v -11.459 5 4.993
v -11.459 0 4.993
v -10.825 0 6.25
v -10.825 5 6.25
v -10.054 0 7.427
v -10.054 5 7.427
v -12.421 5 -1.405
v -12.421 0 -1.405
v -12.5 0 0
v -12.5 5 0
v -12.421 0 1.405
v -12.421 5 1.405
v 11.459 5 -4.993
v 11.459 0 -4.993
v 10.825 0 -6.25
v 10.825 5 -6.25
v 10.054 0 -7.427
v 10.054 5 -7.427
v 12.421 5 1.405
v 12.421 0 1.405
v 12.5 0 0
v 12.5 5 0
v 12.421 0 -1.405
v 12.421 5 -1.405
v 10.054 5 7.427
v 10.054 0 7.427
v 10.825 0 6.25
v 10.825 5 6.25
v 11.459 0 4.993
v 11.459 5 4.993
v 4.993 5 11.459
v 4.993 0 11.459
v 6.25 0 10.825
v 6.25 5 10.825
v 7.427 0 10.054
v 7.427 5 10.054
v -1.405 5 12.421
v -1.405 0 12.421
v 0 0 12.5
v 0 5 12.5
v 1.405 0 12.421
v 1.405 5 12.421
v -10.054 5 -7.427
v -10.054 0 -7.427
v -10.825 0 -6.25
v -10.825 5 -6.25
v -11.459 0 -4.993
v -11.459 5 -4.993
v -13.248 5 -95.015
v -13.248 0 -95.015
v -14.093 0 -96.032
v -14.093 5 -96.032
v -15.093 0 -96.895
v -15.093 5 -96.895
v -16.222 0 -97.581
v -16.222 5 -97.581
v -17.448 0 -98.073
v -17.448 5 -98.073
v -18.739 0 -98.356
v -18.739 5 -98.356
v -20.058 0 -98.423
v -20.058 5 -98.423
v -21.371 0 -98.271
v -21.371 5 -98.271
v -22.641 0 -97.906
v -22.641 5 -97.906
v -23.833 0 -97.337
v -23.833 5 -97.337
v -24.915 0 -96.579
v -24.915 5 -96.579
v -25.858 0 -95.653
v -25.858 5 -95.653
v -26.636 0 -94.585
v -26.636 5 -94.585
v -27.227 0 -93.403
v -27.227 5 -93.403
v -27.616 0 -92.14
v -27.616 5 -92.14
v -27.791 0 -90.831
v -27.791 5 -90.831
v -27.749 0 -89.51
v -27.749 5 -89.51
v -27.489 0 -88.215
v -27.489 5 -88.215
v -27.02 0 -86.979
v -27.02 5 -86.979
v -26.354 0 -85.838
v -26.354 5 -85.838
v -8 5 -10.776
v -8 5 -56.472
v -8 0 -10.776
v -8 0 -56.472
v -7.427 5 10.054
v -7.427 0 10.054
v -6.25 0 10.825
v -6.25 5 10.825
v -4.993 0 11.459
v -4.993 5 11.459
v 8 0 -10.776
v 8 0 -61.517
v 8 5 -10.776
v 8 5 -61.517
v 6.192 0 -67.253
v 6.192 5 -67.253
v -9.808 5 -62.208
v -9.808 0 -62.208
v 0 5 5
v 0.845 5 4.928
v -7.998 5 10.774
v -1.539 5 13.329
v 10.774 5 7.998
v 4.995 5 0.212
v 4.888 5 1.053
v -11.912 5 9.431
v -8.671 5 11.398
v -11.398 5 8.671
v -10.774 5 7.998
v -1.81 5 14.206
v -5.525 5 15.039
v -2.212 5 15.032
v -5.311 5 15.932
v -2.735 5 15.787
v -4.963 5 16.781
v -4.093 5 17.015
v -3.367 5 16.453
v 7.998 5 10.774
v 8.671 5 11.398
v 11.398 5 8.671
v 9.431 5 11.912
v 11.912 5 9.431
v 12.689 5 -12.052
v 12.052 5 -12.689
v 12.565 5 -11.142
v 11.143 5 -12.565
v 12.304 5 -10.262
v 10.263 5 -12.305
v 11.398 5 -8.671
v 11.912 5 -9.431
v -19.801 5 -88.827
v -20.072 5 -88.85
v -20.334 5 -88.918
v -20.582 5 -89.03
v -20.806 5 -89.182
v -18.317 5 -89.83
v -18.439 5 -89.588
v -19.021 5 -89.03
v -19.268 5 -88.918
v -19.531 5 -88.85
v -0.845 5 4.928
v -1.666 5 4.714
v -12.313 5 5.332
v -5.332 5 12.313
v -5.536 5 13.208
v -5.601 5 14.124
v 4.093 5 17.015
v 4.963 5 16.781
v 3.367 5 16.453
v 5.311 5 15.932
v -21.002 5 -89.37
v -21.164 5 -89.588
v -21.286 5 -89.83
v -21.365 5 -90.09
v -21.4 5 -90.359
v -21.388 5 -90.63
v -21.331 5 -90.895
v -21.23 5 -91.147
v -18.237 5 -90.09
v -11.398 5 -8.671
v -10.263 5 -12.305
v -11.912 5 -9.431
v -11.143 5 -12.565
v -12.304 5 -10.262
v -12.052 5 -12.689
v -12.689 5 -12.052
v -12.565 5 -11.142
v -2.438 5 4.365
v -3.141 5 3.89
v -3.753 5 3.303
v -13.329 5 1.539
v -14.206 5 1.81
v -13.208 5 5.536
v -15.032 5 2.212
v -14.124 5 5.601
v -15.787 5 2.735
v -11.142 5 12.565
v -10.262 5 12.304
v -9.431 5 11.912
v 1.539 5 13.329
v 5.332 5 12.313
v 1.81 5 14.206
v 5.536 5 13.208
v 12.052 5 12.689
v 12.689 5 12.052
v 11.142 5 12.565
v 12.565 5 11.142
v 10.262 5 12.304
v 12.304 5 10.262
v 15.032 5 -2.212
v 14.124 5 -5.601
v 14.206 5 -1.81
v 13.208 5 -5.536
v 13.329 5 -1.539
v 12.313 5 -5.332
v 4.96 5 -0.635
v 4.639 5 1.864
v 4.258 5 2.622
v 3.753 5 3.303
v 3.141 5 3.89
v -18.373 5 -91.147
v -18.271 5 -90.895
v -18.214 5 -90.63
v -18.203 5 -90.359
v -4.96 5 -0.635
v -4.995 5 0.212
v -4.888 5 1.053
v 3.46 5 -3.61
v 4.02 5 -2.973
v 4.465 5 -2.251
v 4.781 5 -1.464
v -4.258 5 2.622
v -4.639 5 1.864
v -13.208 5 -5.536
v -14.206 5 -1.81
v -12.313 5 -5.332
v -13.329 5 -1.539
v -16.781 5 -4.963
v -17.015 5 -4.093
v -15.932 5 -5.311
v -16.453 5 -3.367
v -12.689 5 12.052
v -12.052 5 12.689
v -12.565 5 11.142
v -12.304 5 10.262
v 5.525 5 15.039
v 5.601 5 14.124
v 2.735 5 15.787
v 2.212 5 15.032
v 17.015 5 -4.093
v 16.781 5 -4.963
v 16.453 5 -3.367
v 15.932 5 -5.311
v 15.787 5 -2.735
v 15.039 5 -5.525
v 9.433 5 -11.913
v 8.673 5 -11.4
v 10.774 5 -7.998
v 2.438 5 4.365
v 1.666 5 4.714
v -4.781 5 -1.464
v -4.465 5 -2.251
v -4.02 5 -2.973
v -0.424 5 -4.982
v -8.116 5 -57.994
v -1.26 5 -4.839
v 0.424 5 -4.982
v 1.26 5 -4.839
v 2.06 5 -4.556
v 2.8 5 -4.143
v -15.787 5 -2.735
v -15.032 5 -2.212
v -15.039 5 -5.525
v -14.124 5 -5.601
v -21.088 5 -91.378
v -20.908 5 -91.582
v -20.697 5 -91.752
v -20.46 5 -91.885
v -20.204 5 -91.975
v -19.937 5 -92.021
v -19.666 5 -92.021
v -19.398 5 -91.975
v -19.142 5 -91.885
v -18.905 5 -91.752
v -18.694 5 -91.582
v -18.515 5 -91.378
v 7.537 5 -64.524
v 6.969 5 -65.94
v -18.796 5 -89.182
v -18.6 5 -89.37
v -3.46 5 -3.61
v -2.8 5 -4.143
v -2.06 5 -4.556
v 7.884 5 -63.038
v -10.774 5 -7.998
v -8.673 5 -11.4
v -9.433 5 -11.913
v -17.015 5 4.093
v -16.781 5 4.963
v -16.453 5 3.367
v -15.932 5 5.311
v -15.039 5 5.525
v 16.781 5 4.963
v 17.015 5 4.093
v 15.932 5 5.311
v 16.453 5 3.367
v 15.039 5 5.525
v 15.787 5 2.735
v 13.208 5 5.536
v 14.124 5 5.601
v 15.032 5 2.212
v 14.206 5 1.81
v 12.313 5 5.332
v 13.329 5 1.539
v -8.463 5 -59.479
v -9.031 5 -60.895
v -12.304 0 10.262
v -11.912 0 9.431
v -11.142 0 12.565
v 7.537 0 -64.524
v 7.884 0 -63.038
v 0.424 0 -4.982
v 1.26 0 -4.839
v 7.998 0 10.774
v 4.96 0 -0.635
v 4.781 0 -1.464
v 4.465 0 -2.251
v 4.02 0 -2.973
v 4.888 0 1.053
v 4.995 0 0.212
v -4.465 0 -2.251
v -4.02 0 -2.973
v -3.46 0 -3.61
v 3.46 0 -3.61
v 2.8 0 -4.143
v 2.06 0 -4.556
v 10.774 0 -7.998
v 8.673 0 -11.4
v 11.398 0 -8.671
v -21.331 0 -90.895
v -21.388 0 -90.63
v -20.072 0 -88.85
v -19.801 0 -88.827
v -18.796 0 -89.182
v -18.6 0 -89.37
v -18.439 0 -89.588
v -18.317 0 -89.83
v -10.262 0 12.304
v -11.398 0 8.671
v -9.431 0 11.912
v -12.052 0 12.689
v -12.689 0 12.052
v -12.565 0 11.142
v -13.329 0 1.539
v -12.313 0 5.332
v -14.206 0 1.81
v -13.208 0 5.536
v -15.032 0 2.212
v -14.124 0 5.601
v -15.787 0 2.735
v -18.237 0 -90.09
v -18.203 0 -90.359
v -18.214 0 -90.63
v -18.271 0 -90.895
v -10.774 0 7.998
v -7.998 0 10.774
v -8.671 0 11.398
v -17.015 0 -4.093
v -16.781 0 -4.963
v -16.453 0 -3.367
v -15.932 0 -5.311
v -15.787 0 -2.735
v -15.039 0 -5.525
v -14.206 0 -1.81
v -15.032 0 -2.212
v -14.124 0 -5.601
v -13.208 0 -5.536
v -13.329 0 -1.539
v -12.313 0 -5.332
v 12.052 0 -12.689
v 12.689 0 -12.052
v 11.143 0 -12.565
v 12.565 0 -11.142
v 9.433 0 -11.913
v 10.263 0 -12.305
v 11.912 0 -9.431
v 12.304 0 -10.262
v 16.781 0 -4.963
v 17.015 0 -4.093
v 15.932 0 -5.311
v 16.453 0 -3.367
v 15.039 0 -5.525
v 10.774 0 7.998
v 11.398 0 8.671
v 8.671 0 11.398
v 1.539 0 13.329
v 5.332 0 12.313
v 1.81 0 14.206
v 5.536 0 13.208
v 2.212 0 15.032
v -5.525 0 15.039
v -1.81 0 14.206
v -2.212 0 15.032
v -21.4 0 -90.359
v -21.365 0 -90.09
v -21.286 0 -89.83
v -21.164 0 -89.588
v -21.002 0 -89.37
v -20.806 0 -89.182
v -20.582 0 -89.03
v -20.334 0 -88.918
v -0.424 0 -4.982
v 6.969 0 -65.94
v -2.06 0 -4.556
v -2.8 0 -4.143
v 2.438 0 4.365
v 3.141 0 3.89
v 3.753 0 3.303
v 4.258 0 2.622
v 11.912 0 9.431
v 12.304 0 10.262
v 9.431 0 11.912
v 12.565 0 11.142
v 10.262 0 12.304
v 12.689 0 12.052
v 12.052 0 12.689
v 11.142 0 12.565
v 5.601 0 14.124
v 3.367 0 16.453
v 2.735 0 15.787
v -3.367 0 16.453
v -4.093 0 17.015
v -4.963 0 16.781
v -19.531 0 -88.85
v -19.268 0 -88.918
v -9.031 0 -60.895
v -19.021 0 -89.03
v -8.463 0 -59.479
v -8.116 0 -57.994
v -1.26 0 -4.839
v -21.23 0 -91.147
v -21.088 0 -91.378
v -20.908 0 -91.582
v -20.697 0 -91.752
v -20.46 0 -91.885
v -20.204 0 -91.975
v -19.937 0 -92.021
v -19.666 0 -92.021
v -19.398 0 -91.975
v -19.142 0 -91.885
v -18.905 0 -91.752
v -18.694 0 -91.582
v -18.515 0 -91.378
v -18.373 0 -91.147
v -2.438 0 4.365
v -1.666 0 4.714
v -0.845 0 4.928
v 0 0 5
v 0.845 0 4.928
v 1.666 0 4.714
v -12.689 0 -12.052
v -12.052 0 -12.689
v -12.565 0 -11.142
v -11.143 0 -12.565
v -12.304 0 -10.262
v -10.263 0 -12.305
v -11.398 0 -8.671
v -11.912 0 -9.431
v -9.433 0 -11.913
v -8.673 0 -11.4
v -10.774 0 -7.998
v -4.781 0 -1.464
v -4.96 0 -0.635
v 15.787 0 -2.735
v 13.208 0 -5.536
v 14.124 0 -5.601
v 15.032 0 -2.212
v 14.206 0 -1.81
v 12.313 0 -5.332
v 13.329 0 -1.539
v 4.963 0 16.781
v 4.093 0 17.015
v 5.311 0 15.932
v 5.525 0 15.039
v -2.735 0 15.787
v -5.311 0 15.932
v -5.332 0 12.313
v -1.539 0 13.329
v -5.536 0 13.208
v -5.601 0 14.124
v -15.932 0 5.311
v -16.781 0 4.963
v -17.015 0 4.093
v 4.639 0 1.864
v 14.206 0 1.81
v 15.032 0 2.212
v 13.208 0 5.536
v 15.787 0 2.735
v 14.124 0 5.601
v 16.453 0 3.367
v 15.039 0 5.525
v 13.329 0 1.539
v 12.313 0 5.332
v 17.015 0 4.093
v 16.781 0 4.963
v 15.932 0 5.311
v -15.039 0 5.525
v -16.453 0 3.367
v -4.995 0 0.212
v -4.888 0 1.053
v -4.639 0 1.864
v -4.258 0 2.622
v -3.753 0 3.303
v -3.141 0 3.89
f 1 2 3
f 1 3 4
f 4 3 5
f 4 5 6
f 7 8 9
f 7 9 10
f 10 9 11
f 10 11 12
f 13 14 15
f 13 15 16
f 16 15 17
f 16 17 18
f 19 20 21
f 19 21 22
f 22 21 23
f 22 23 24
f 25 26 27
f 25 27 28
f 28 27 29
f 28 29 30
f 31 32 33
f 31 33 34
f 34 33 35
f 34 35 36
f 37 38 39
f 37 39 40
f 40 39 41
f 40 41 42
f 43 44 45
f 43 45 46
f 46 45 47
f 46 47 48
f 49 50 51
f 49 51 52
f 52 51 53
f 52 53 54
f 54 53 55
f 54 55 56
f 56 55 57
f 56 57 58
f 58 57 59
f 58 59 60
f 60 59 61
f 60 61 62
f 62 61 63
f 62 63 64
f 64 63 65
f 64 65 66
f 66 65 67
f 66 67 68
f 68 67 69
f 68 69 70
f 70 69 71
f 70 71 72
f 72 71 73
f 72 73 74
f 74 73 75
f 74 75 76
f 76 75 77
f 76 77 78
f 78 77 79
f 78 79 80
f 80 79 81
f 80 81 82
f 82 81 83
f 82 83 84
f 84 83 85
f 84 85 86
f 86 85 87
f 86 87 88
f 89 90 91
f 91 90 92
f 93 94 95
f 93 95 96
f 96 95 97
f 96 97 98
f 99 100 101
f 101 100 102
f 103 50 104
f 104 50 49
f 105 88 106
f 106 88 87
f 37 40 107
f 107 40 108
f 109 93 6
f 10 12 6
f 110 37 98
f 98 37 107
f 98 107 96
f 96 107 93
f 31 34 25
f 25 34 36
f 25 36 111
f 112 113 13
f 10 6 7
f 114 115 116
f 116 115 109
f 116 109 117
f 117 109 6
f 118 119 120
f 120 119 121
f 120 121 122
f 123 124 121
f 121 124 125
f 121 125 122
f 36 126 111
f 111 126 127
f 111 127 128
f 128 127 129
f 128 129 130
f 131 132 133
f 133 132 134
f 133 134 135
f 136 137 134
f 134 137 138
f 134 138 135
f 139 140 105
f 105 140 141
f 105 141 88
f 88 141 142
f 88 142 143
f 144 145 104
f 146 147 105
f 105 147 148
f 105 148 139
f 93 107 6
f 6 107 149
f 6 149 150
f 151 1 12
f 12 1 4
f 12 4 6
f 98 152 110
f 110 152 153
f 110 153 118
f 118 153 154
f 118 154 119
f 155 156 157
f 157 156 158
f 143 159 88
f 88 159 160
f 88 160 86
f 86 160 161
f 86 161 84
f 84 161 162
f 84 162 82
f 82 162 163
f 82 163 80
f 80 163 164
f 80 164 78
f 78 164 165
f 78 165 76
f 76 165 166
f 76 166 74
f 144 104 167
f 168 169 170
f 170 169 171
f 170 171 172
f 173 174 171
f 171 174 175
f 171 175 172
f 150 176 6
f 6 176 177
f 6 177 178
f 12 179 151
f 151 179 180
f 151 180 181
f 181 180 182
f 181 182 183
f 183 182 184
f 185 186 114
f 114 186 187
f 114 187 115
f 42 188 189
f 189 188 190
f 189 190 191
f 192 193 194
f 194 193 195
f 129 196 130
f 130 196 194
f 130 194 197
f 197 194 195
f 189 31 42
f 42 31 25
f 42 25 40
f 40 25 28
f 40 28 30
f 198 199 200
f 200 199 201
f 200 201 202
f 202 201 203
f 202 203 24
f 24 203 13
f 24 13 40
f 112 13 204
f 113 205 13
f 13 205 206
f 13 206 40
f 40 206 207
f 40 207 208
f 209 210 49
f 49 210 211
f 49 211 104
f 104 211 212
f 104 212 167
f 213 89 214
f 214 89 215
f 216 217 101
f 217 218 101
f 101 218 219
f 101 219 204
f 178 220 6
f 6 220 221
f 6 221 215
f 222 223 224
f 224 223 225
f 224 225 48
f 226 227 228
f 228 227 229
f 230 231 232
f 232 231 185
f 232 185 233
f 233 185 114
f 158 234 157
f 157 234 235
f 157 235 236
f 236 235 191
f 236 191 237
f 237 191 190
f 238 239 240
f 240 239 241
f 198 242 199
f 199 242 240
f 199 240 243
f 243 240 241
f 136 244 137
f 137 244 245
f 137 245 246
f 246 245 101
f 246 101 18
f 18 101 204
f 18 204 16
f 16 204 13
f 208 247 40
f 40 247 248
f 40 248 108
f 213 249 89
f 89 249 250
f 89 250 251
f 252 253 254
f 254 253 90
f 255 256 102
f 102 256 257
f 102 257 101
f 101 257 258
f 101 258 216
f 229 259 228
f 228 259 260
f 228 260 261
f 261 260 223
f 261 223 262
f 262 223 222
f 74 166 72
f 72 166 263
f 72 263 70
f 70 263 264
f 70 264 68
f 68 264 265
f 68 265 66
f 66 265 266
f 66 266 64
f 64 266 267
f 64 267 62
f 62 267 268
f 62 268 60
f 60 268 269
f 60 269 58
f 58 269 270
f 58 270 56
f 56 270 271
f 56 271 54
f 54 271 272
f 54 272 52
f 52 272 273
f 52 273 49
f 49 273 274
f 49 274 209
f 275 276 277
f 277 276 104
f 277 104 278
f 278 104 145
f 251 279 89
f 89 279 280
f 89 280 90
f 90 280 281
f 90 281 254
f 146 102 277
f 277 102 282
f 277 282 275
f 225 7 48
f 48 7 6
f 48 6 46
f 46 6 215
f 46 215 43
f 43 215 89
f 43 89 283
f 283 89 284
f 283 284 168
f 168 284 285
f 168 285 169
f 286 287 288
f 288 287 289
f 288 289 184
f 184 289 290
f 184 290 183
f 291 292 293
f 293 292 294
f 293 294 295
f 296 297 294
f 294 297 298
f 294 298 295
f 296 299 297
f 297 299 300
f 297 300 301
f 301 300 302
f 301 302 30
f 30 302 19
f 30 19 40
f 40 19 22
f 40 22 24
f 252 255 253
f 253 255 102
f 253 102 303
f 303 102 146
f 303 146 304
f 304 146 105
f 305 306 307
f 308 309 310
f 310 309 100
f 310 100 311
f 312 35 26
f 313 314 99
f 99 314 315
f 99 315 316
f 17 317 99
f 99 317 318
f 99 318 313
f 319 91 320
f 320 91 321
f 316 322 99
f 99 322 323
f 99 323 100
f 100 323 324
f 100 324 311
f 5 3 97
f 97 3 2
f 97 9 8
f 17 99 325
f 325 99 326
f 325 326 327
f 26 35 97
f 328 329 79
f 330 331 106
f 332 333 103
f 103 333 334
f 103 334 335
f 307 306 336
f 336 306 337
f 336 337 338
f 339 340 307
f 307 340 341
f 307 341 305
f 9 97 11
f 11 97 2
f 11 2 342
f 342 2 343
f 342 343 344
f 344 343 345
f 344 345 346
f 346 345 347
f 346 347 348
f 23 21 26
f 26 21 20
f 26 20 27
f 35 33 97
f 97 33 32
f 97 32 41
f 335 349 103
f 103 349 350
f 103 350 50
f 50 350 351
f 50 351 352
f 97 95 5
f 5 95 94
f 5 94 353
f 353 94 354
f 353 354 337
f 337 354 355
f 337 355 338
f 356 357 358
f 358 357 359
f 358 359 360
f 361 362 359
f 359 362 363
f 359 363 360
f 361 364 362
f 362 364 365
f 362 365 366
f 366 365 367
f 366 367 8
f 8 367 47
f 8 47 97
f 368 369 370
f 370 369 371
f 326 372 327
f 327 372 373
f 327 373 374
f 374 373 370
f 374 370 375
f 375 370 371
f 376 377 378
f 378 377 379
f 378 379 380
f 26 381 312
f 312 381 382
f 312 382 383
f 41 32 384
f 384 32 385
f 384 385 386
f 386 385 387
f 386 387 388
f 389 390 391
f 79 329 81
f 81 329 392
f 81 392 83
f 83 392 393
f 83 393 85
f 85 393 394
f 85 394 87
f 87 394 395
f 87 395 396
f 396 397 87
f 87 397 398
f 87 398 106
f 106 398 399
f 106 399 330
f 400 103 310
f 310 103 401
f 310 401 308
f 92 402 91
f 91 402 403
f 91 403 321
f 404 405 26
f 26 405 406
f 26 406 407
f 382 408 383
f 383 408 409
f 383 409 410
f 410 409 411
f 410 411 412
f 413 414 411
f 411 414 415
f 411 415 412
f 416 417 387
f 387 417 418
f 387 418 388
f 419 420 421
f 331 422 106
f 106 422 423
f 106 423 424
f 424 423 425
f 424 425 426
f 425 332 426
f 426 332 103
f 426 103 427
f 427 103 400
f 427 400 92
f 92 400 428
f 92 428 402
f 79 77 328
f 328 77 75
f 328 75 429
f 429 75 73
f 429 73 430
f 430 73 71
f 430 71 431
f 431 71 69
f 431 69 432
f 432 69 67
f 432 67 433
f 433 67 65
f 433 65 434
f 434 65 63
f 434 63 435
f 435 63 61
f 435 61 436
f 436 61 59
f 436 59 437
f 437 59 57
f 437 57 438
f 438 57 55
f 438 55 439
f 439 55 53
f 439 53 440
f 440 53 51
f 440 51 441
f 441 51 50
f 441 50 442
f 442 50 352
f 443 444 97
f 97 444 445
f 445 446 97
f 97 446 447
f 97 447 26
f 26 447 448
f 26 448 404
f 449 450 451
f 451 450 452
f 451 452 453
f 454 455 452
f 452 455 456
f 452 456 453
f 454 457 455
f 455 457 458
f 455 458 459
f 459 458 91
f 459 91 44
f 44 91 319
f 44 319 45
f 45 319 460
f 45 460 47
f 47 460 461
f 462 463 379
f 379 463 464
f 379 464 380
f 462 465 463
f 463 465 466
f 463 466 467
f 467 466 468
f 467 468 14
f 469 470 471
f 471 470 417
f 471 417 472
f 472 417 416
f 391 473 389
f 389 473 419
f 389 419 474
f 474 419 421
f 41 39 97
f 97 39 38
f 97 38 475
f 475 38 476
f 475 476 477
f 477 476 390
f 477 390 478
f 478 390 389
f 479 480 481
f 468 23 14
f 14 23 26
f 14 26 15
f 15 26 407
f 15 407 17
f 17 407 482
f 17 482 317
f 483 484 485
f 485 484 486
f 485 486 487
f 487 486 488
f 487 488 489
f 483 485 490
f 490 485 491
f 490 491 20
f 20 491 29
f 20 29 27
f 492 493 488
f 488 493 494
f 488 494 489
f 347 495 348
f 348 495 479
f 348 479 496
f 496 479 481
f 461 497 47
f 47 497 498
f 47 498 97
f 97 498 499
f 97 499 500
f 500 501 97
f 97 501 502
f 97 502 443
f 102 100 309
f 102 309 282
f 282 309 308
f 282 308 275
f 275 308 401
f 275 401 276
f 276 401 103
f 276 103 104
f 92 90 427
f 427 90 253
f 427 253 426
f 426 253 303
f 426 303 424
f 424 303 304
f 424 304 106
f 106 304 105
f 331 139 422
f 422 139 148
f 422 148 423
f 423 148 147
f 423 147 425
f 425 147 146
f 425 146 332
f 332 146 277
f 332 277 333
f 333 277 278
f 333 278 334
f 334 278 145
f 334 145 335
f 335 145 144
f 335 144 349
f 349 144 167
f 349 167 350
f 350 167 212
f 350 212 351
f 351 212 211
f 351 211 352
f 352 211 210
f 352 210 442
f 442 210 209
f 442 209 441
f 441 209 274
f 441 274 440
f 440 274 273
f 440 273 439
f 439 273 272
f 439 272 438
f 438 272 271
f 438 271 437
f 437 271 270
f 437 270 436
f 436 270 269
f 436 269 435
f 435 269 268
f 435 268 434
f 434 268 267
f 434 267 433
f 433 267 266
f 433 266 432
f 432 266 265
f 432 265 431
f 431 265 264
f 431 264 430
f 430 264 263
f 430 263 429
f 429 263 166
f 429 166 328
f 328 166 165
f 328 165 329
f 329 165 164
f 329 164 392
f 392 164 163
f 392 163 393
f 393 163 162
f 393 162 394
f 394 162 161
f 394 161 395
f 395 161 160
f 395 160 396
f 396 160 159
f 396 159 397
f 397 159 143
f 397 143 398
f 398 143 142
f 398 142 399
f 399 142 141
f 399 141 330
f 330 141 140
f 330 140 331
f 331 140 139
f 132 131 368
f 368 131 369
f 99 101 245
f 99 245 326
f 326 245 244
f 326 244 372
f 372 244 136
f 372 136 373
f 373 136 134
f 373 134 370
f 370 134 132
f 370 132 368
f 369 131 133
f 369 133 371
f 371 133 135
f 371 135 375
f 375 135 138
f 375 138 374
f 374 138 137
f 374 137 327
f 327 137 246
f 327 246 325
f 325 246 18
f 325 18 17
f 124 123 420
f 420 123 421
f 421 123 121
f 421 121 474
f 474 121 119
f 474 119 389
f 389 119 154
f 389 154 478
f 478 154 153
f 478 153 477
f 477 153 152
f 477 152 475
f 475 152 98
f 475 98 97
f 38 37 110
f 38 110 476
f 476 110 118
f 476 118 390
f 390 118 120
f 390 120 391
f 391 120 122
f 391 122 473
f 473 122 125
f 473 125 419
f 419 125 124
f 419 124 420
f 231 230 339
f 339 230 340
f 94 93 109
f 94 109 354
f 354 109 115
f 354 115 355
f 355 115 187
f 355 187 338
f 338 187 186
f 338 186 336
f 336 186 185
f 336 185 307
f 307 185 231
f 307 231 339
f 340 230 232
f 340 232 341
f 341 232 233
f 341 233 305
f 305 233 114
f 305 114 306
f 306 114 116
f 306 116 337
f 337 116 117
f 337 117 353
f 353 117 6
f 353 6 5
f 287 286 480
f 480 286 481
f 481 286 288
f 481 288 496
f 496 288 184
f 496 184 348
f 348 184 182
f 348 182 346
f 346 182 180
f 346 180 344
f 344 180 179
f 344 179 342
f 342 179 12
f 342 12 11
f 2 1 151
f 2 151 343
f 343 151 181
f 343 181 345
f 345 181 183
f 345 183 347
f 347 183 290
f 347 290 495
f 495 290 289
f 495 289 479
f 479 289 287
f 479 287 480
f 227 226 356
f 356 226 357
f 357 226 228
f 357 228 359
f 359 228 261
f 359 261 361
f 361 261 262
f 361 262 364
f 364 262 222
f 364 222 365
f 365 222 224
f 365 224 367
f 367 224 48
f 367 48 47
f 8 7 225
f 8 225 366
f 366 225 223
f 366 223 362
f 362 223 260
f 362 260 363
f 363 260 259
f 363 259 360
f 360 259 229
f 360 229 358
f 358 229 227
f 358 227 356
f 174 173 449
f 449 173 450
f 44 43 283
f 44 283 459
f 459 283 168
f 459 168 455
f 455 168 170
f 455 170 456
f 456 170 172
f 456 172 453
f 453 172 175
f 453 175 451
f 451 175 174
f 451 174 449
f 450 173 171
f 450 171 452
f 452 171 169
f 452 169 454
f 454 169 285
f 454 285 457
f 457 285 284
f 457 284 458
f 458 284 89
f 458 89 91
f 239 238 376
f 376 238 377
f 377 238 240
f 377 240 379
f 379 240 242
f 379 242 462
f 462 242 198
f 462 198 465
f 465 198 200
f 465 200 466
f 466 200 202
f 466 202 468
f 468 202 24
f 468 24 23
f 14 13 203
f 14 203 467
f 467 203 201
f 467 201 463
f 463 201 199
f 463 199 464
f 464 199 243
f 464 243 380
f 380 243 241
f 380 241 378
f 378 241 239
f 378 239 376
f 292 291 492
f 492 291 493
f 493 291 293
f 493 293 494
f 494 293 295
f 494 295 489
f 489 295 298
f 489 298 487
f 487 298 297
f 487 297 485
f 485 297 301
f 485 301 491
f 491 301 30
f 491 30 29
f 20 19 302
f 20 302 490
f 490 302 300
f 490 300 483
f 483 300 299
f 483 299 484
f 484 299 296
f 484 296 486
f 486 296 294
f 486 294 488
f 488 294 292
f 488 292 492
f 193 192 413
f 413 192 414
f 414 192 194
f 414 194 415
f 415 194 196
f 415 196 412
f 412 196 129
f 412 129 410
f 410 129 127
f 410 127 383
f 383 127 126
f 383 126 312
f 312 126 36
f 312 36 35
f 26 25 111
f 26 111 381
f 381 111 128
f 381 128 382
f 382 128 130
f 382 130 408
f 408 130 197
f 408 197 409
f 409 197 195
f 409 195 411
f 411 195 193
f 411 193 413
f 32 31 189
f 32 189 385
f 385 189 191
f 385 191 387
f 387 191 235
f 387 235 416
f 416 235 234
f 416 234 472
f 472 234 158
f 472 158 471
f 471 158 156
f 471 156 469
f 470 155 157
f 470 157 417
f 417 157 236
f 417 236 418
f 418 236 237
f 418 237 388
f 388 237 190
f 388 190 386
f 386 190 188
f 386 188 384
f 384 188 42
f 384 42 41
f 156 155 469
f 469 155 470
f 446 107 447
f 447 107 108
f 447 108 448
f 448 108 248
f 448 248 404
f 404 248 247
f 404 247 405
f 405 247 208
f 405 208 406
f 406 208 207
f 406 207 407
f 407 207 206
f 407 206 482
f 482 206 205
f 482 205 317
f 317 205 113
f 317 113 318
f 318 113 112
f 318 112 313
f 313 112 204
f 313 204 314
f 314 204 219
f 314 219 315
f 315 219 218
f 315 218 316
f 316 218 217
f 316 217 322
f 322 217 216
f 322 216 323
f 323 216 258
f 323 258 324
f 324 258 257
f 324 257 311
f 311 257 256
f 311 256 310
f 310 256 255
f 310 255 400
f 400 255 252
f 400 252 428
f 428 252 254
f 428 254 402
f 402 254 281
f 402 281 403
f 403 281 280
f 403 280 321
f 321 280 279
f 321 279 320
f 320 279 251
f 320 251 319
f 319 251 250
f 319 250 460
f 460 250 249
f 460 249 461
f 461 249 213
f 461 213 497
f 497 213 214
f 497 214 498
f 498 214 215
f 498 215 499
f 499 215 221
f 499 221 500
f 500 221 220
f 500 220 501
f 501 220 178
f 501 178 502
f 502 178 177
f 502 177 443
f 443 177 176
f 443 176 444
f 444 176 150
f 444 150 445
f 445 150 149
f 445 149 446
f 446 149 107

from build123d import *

# Parameters (mm, degrees)
BOSS_EXTRUDE1_DEPTH = 5
FILLET1_RADIUS      = 8
FILLET1_LENGTH      = 5
FILLET2_R           = 10
SKETCH2_R           = 1.6
CUT_EXTRUDE2_DEPTH  = 103.399978443
BOSS_EXTRUDE3_DEPTH = 5
SKETCH6_R           = 5
CUT_EXTRUDE3_DEPTH  = 103.399978443


with BuildPart() as part:
    # Sketch1 → Boss-Extrude1 (new body)
    with BuildSketch(Plane(origin=(0, 0, 0), x_dir=(1, 0, 0), z_dir=(0, 1, 0))):
        with BuildLine():
            Line((8, 9.604686356), (8, 64.67016599))
            Line((8, 64.67016599), (-17.836624745, 101.568690121))
            Line((-17.836624745, 101.568690121), (-30.943057454, 92.391467139))
            Line((-30.943057454, 92.391467139), (-8, 59.625385368))
            Line((-8, 59.625385368), (-8, 9.604686356))
            ThreePointArc((-8, 9.604686356), (0, -12.5), (8, 9.604686356))
        make_face()
    extrude(amount=BOSS_EXTRUDE1_DEPTH)

    # Fillet1: full round fillet: the end face becomes a half cylinder, R = half its width
    fillet1_face = Plane((-24.3898411, 2.5, -96.98007863), x_dir=(0, 1, 0), z_dir=(-0.573576436351, 0, -0.819152044289))  # on the end face: x along it, z out of the body
    fillet1_slab = fillet1_face.offset(-FILLET1_RADIUS / 2) * Box(FILLET1_LENGTH, 2 * FILLET1_RADIUS, FILLET1_RADIUS, mode=Mode.PRIVATE)  # the body's end, R deep
    fillet1_round = Plane((-19.801229609, 2.5, -90.426862276), x_dir=(-0.573576436351, 0, -0.819152044289), z_dir=(0, 1, 0)) * Cylinder(FILLET1_RADIUS, FILLET1_LENGTH, mode=Mode.PRIVATE)  # its axis R under the face
    add(fillet1_slab - fillet1_round, mode=Mode.SUBTRACT)

    # Fillet2
    fillet2_edges = [part.edges().sort_by_distance(p)[0] for p in [
        (-8, 2.5, -59.625385368),
        (8, 2.5, -64.67016599),
    ]]
    fillet(fillet2_edges, radius=FILLET2_R)

    # Sketch2 → Cut-Extrude2 (cut, through all)
    with BuildSketch(Plane(origin=(0, 5, 0), x_dir=(1, 0, 0), z_dir=(0, 1, 0))):
        with Locations(Location((-19.801229609, 90.426862276, 0), (0, 0, 270))):
            Circle(SKETCH2_R)
    extrude(amount=-CUT_EXTRUDE2_DEPTH, mode=Mode.SUBTRACT)

    # Sketch5 → Boss-Extrude3 (add)
    with BuildSketch(Plane(origin=(0, 5, 0), x_dir=(1, 0, 0), z_dir=(0, 1, 0))):
        with BuildLine():
            ThreePointArc((-12.051706508, -12.688828561), (-9.162245044, -11.749370601), (-7.103491322, -9.514845613))
            ThreePointArc((-7.103491322, -9.514845613), (-5.937, -10.283185645), (-4.688352353, -10.909226747))
            ThreePointArc((-4.688352353, -10.909226747), (-5.594130897, -13.809422264), (-4.962994624, -16.781498275))
            ThreePointArc((-4.962994624, -16.781498275), (-4.529333289, -16.90370196), (-4.092669715, -17.014701132))
            ThreePointArc((-4.092669715, -17.014701132), (-2.060051663, -14.756375941), (-1.394381134, -11.791843675))
            ThreePointArc((-1.394381134, -11.791843675), (0, -11.874), (1.394381134, -11.791843675))
            ThreePointArc((1.394381134, -11.791843675), (2.060051663, -14.756375941), (4.092669715, -17.014701132))
            ThreePointArc((4.092669715, -17.014701132), (4.529333289, -16.90370196), (4.962994624, -16.781498275))
            ThreePointArc((4.962994624, -16.781498275), (5.594130897, -13.809422264), (4.688352353, -10.909226747))
            ThreePointArc((4.688352353, -10.909226747), (5.937, -10.283185645), (7.103491322, -9.514845613))
            ThreePointArc((7.103491322, -9.514845613), (9.162245044, -11.749370601), (12.051706508, -12.688828561))
            ThreePointArc((12.051706508, -12.688828561), (12.374368671, -12.374368671), (12.688828561, -12.051706508))
            ThreePointArc((12.688828561, -12.051706508), (11.749370601, -9.162245044), (9.514845613, -7.103491322))
            ThreePointArc((9.514845613, -7.103491322), (10.283185645, -5.937), (10.909226747, -4.688352353))
            ThreePointArc((10.909226747, -4.688352353), (13.809422264, -5.594130897), (16.781498275, -4.962994624))
            ThreePointArc((16.781498275, -4.962994624), (16.90370196, -4.529333289), (17.014701132, -4.092669715))
            ThreePointArc((17.014701132, -4.092669715), (14.756375941, -2.060051663), (11.791843675, -1.394381134))
            ThreePointArc((11.791843675, -1.394381134), (11.874, 0), (11.791843675, 1.394381134))
            ThreePointArc((11.791843675, 1.394381134), (14.756375941, 2.060051663), (17.014701132, 4.092669715))
            ThreePointArc((17.014701132, 4.092669715), (16.90370196, 4.529333289), (16.781498275, 4.962994624))
            ThreePointArc((16.781498275, 4.962994624), (13.809422264, 5.594130897), (10.909226747, 4.688352353))
            ThreePointArc((10.909226747, 4.688352353), (10.283185645, 5.937), (9.514845613, 7.103491322))
            ThreePointArc((9.514845613, 7.103491322), (11.749370601, 9.162245044), (12.688828561, 12.051706508))
            ThreePointArc((12.688828561, 12.051706508), (12.374368671, 12.374368671), (12.051706508, 12.688828561))
            ThreePointArc((12.051706508, 12.688828561), (9.162245044, 11.749370601), (7.103491322, 9.514845613))
            ThreePointArc((7.103491322, 9.514845613), (5.937, 10.283185645), (4.688352353, 10.909226747))
            ThreePointArc((4.688352353, 10.909226747), (5.594130897, 13.809422264), (4.962994624, 16.781498275))
            ThreePointArc((4.962994624, 16.781498275), (4.529333289, 16.90370196), (4.092669715, 17.014701132))
            ThreePointArc((4.092669715, 17.014701132), (2.060051663, 14.756375941), (1.394381134, 11.791843675))
            ThreePointArc((1.394381134, 11.791843675), (0, 11.874), (-1.394381134, 11.791843675))
            ThreePointArc((-1.394381134, 11.791843675), (-2.060051663, 14.756375941), (-4.092669715, 17.014701132))
            ThreePointArc((-4.092669715, 17.014701132), (-4.529333289, 16.90370196), (-4.962994624, 16.781498275))
            ThreePointArc((-4.962994624, 16.781498275), (-5.594130897, 13.809422264), (-4.688352353, 10.909226747))
            ThreePointArc((-4.688352353, 10.909226747), (-5.937, 10.283185645), (-7.103491322, 9.514845613))
            ThreePointArc((-7.103491322, 9.514845613), (-9.162245044, 11.749370601), (-12.051706508, 12.688828561))
            ThreePointArc((-12.051706508, 12.688828561), (-12.374368671, 12.374368671), (-12.688828561, 12.051706508))
            ThreePointArc((-12.688828561, 12.051706508), (-11.749370601, 9.162245044), (-9.514845613, 7.103491322))
            ThreePointArc((-9.514845613, 7.103491322), (-10.283185645, 5.937), (-10.909226747, 4.688352353))
            ThreePointArc((-10.909226747, 4.688352353), (-13.809422264, 5.594130897), (-16.781498275, 4.962994624))
            ThreePointArc((-16.781498275, 4.962994624), (-16.90370196, 4.529333289), (-17.014701132, 4.092669715))
            ThreePointArc((-17.014701132, 4.092669715), (-14.756375941, 2.060051663), (-11.791843675, 1.394381134))
            ThreePointArc((-11.791843675, 1.394381134), (-11.874, 0), (-11.791843675, -1.394381134))
            ThreePointArc((-11.791843675, -1.394381134), (-14.756375941, -2.060051663), (-17.014701132, -4.092669715))
            ThreePointArc((-17.014701132, -4.092669715), (-16.90370196, -4.529333289), (-16.781498275, -4.962994624))
            ThreePointArc((-16.781498275, -4.962994624), (-13.809422264, -5.594130897), (-10.909226747, -4.688352353))
            ThreePointArc((-10.909226747, -4.688352353), (-10.283185645, -5.937), (-9.514845613, -7.103491322))
            ThreePointArc((-9.514845613, -7.103491322), (-11.749370601, -9.162245044), (-12.688828561, -12.051706508))
            ThreePointArc((-12.688828561, -12.051706508), (-12.374368671, -12.374368671), (-12.051706508, -12.688828561))
        make_face()
    extrude(amount=-BOSS_EXTRUDE3_DEPTH)

    # Sketch6 → Cut-Extrude3 (cut, through all)
    with BuildSketch(Plane(origin=(0, 5, 0), x_dir=(1, 0, 0), z_dir=(0, 1, 0))):
        with Locations(Location((0, 0, 0), (0, 0, 270))):
            Circle(SKETCH6_R)
    extrude(amount=-CUT_EXTRUDE3_DEPTH, mode=Mode.SUBTRACT)


solid = part.part
